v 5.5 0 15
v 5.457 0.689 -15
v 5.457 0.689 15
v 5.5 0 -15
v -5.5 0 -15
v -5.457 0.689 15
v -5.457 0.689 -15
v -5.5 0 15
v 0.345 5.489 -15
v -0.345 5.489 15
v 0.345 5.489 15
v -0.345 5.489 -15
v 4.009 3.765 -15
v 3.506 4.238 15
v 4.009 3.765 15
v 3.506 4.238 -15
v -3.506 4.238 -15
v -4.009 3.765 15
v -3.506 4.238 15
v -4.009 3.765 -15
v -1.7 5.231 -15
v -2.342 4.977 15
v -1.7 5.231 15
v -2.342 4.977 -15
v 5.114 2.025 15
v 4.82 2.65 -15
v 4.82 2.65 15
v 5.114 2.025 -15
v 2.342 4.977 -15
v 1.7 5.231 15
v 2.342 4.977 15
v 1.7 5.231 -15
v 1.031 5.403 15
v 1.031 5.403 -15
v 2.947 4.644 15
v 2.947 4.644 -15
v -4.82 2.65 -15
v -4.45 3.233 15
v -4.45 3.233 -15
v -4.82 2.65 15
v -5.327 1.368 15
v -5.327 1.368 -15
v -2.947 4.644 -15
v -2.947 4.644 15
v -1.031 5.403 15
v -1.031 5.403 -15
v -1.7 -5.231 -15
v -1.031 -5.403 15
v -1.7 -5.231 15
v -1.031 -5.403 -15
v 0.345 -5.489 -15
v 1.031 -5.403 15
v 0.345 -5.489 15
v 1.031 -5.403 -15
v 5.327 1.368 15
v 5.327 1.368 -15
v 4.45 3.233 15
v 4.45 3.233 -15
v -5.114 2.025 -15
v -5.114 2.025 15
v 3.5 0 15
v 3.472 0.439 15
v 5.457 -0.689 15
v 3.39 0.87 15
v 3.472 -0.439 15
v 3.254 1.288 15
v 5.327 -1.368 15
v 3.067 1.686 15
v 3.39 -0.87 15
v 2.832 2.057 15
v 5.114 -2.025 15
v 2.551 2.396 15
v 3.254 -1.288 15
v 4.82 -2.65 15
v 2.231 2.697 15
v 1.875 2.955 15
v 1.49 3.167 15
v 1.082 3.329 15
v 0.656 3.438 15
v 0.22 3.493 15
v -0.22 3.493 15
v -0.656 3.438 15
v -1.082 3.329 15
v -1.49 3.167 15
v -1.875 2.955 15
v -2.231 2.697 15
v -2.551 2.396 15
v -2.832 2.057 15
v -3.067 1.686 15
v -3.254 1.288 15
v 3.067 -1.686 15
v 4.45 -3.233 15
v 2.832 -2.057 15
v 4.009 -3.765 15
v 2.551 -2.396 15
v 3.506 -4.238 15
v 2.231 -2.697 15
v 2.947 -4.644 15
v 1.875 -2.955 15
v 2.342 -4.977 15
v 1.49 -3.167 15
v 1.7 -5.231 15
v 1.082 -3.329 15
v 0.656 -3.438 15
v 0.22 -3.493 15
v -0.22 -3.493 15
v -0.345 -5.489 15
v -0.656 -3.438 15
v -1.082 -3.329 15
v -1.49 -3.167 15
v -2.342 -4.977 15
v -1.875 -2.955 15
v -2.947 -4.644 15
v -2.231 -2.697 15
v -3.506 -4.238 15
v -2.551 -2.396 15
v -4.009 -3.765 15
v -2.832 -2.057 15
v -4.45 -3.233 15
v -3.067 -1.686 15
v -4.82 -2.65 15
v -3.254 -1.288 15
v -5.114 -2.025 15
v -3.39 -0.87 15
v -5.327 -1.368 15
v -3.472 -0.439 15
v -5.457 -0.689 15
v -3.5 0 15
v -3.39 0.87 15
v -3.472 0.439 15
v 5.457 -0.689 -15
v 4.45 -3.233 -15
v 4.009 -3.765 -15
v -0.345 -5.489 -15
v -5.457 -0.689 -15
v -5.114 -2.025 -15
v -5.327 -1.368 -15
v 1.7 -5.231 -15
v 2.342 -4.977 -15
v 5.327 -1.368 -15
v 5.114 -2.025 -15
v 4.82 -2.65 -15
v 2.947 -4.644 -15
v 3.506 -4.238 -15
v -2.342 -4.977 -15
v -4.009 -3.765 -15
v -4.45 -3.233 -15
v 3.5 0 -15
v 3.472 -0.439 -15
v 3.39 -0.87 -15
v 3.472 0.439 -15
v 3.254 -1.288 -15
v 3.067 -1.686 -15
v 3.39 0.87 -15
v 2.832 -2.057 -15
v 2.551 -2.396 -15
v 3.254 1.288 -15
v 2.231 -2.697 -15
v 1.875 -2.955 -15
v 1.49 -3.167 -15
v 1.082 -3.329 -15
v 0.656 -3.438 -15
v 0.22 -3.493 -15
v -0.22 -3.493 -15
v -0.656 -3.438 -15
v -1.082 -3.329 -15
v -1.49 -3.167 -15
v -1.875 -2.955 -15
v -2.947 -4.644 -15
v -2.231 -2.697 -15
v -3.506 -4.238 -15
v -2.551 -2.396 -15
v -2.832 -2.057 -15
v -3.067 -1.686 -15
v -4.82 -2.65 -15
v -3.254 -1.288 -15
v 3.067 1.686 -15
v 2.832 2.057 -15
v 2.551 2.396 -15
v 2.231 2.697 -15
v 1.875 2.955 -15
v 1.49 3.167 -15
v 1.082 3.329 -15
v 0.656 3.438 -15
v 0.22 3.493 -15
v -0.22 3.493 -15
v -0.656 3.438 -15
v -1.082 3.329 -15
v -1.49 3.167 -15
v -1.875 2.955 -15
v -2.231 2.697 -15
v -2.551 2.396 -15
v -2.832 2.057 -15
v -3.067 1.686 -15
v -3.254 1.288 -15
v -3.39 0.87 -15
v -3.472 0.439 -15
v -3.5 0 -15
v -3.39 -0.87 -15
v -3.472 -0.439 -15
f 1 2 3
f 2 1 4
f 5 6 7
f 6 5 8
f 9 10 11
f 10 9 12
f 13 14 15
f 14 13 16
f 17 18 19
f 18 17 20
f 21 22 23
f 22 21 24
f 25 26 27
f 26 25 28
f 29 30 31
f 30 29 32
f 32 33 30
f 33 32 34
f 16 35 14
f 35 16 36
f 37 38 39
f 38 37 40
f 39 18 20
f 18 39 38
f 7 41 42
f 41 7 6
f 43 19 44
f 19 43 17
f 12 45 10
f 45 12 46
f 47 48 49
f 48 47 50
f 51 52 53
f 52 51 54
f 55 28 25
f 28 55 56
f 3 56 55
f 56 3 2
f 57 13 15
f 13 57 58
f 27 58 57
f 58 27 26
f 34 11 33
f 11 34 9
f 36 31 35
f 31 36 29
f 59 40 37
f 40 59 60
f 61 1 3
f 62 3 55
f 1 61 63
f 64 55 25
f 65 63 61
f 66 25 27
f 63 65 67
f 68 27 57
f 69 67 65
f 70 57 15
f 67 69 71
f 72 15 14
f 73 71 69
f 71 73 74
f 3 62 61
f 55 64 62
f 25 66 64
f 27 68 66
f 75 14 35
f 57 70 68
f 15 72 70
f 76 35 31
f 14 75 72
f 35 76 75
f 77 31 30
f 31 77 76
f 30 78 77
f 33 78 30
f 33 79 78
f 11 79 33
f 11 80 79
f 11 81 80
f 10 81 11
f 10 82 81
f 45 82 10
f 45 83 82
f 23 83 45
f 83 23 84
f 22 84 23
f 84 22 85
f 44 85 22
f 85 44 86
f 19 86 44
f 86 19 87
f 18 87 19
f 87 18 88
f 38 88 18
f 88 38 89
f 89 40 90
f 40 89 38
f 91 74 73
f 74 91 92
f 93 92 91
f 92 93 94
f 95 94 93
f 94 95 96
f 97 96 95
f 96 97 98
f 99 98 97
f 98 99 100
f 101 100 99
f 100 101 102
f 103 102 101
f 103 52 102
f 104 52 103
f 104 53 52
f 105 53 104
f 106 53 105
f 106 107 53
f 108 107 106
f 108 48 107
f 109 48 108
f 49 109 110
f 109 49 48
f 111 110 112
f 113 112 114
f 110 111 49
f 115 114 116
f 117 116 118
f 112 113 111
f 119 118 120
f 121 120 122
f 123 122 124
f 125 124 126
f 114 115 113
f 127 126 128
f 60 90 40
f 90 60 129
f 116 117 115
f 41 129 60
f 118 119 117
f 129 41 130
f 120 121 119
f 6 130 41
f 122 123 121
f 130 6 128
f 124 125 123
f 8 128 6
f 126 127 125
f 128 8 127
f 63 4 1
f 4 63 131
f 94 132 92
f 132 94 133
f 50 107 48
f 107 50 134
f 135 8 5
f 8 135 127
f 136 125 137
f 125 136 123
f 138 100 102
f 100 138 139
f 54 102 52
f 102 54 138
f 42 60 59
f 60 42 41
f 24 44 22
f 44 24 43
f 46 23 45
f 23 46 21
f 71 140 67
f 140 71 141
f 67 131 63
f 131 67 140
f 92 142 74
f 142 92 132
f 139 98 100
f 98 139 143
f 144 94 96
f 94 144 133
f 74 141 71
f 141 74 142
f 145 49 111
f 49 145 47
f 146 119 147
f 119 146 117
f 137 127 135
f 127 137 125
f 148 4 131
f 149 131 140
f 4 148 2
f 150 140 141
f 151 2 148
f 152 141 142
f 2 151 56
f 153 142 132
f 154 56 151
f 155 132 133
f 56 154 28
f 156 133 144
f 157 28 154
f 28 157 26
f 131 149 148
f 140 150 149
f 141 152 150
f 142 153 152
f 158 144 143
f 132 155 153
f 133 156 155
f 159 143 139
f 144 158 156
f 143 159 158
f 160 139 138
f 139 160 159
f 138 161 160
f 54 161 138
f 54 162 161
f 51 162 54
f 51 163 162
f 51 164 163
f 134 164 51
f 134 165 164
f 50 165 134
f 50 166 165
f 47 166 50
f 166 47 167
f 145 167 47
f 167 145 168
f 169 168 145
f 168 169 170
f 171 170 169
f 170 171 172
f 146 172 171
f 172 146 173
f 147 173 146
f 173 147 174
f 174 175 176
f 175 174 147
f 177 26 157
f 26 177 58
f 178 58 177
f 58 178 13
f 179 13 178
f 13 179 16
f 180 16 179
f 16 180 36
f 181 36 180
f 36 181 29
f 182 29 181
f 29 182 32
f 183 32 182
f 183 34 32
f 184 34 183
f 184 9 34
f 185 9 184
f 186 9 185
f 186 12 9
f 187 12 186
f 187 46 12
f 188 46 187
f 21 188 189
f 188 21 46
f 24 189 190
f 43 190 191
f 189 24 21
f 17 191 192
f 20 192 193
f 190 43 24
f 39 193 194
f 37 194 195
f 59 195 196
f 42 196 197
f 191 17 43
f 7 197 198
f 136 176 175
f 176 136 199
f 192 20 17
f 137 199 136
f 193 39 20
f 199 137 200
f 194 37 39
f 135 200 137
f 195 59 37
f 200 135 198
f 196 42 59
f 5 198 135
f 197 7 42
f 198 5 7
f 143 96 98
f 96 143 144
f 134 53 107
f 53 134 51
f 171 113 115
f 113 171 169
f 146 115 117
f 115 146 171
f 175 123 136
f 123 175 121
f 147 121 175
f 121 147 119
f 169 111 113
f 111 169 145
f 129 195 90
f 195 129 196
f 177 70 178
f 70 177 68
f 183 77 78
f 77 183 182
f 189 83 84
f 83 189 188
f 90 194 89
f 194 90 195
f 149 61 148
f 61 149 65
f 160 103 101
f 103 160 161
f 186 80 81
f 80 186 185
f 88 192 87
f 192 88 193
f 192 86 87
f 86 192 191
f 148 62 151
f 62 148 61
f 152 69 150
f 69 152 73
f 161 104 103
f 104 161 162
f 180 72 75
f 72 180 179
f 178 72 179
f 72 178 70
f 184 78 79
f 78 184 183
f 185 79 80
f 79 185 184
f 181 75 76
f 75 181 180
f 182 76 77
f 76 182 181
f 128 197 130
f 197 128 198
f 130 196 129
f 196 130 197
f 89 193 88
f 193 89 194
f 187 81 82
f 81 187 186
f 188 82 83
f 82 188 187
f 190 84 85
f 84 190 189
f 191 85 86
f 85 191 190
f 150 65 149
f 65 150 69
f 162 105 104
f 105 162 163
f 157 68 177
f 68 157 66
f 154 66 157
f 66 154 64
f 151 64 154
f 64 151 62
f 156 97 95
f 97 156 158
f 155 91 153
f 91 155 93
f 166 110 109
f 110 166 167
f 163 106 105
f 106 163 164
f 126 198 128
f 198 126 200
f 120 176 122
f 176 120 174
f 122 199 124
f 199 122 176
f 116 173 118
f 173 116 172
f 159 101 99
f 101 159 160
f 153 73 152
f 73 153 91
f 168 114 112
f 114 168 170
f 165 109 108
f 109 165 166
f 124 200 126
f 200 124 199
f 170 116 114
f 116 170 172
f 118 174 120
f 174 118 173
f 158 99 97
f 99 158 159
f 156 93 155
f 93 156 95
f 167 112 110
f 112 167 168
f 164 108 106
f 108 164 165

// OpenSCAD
$fn = 50;


difference() {
	union() {
		translate(v = [0, 0, -15.0000000000]) {
			cylinder(h = 30, r = 5.5000000000);
		}
	}
	union() {
		translate(v = [0, 0, -100.0000000000]) {
			cylinder(h = 200, r = 3.5000000000);
		}
	}
}
